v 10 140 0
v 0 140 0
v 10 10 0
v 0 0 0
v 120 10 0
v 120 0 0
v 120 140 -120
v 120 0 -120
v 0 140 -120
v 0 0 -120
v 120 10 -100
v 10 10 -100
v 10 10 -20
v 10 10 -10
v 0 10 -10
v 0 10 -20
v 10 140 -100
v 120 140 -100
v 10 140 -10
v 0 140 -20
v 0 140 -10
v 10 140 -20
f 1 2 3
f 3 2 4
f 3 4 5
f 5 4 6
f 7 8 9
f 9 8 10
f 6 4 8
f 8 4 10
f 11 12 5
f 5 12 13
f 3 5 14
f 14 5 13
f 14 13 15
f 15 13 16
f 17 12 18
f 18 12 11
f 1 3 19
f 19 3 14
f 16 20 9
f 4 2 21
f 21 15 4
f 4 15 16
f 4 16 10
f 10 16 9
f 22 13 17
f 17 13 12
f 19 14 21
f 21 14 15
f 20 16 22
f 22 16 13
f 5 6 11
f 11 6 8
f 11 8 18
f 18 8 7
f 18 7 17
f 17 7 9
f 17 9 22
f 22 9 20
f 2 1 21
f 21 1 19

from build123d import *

# Parameters (mm, degrees)
SKETCH1_W                      = 670
SKETCH1_H                      = 120
BOSS_EXTRUDE1_DEPTH            = 530
SKETCH2_W                      = 100
SKETCH2_H                      = 200
SKETCH2_W_2                    = 650
SKETCH2_H_2                    = 250
CUT_EXTRUDE1_DEPTH             = 100
SKETCH3_R                      = 50
CUT_EXTRUDE2_DEPTH             = 260
F_12_0_12_DIAMETER_HOLE2_D     = 12
F_12_0_12_DIAMETER_HOLE2_DEPTH = 30
F_12_0_12_DIAMETER_HOLE2_TIP   = 3.605163714
SKETCH8_W                      = 650
SKETCH8_H                      = 50
BOSS_EXTRUDE2_DEPTH            = 5
SKETCH9_W                      = 10
SKETCH9_H                      = 250
CUT_EXTRUDE3_DEPTH             = 717
CUT_EXTRUDE4_DEPTH             = 5
SKETCH11_W                     = 10
SKETCH11_H                     = 100
BOSS_EXTRUDE3_DEPTH            = 78
BOSS_EXTRUDE3_2_DEPTH          = 78
BOSS_EXTRUDE3_3_DEPTH          = 78
SKETCH12_W                     = 20
SKETCH12_H                     = 30
CUT_EXTRUDE5_DEPTH             = 80
SKETCH15_W                     = 30
SKETCH15_H                     = 23.536156656
SKETCH15_H_2                   = 28.986603691
CUT_EXTRUDE7_DEPTH             = 35
SHELL1_T                       = -3
SKETCH16_W                     = 14
SKETCH16_H                     = 14
CUT_EXTRUDE8_DEPTH             = 35
SKETCH17_W                     = 5.729882812
SKETCH17_H                     = 17.428393554
SKETCH17_W_2                   = 13.369726562
SKETCH17_H_2                   = 3.342431641
BOSS_EXTRUDE4_DEPTH            = 5
CUT_EXTRUDE10_DEPTH            = 863.670273187
CUT_EXTRUDE10_DEPTH_BACK       = 863.670273187
SKETCH18_W                     = 670
SKETCH18_H                     = 250
CUT_EXTRUDE11_DEPTH            = 734.007503372
CUT_EXTRUDE11_DEPTH_BACK       = 734.007503372
SKETCH19_W                     = 550
SKETCH19_H                     = 280
CUT_EXTRUDE12_DEPTH            = 321.624390838
CUT_EXTRUDE12_DEPTH_BACK       = 321.624390838
SKETCH20_W                     = 120
SKETCH20_H                     = 140


with BuildPart() as part:
    # Sketch1 → Boss-Extrude1 (new body)
    with BuildSketch(Plane(origin=(0, 0, 0), x_dir=(1, 0, 0), z_dir=(0, 1, 0))):
        with Locations((335, 60)):
            Rectangle(SKETCH1_W, SKETCH1_H)
    extrude(amount=BOSS_EXTRUDE1_DEPTH)

    # Sketch2 → Cut-Extrude1 (cut)
    with BuildSketch(Plane.XY):
        with Locations((60, 380)):
            Rectangle(SKETCH2_W, SKETCH2_H)
        with Locations((170, 380)):
            Rectangle(SKETCH2_W, SKETCH2_H)
        with Locations((280, 380)):
            Rectangle(SKETCH2_W, SKETCH2_H)
        with Locations((390, 380)):
            Rectangle(SKETCH2_W, SKETCH2_H)
        with Locations((500, 380)):
            Rectangle(SKETCH2_W, SKETCH2_H)
        with Locations((610, 380)):
            Rectangle(SKETCH2_W, SKETCH2_H)
        with Locations((335, 135)):
            Rectangle(SKETCH2_W_2, SKETCH2_H_2)
    extrude(amount=-CUT_EXTRUDE1_DEPTH, mode=Mode.SUBTRACT)

    # Sketch3 → Cut-Extrude2 (cut)
    with BuildSketch(Plane(origin=(0, 530, 0), x_dir=(1, 0, 0), z_dir=(0, 1, 0))):
        with Locations(Location((60, 60, 0), (0, 0, 270))):
            Circle(SKETCH3_R)
        with Locations(Location((170, 60, 0), (0, 0, 270))):
            Circle(SKETCH3_R)
        with Locations(Location((280, 60, 0), (0, 0, 270))):
            Circle(SKETCH3_R)
        with Locations(Location((390, 60, 0), (0, 0, 270))):
            Circle(SKETCH3_R)
        with Locations(Location((500, 60, 0), (0, 0, 270))):
            Circle(SKETCH3_R)
        with Locations(Location((610, 60, 0), (0, 0, 270))):
            Circle(SKETCH3_R)
    extrude(amount=-CUT_EXTRUDE2_DEPTH, mode=Mode.SUBTRACT)

    # Ø12.0 (12) Diameter Hole2
    with Locations(Plane(origin=(59.704642413, 270, -102.411697903), x_dir=(0, 0, 1), z_dir=(0, 1, 0))):
        with Locations((0, 0), (-0.195888006, 111.8520513), (0.014838595, 221.167624818), (-0.341843303, 331.364008353), (0.657723149, 441.008646429), (1.288998006, 549.811854685)):
            Hole(F_12_0_12_DIAMETER_HOLE2_D / 2, depth=F_12_0_12_DIAMETER_HOLE2_DEPTH)
            with Locations((0, 0, -(F_12_0_12_DIAMETER_HOLE2_DEPTH + F_12_0_12_DIAMETER_HOLE2_TIP / 2))):  # 118° drill point
                Cone(0, F_12_0_12_DIAMETER_HOLE2_D / 2, F_12_0_12_DIAMETER_HOLE2_TIP, mode=Mode.SUBTRACT)

    # Sketch8 → Boss-Extrude2 (add)
    with BuildSketch(Plane.XY):
        with Locations((335, 305)):
            Rectangle(SKETCH8_W, SKETCH8_H)
    extrude(amount=-BOSS_EXTRUDE2_DEPTH)

    # Sketch9 → Cut-Extrude3 (cut)
    with BuildSketch(Plane(origin=(670, 0, 0), x_dir=(0, 0, -1), z_dir=(1, 0, 0))):
        with Locations((15, 135)):
            Rectangle(SKETCH9_W, SKETCH9_H)
    extrude(amount=-CUT_EXTRUDE3_DEPTH, mode=Mode.SUBTRACT)

    # Sketch10 → Cut-Extrude4 (cut)
    with BuildSketch(Plane(origin=(0, 10, 0), x_dir=(1, 0, 0), z_dir=(0, 1, 0))):
        Polygon((365, 61.943560596), (350, 87.924322709), (320, 87.924322709), (305, 61.943560596), (320, 35.962798482), (350, 35.962798482), align=None)
    extrude(amount=-CUT_EXTRUDE4_DEPTH, mode=Mode.SUBTRACT)

    # Sketch12 → Cut-Extrude5 (cut)
    with BuildSketch(Plane.XY.offset(-100)):
        with Locations((85.198613037, 245)):
            Rectangle(SKETCH12_W, SKETCH12_H)
        with Locations((195.198613037, 245)):
            Rectangle(SKETCH12_W, SKETCH12_H)
        with Locations((305.198613037, 245)):
            Rectangle(SKETCH12_W, SKETCH12_H)
        with Locations((415.198613037, 245)):
            Rectangle(SKETCH12_W, SKETCH12_H)
        with Locations((525.198613037, 245)):
            Rectangle(SKETCH12_W, SKETCH12_H)
        with Locations((635.198613037, 245)):
            Rectangle(SKETCH12_W, SKETCH12_H)
    extrude(amount=-CUT_EXTRUDE5_DEPTH, mode=Mode.SUBTRACT)

    # Sketch17 → Boss-Extrude4 (add)
    # profile 1 of 9: a face of its own
    with BuildSketch(Plane.XY):
        with BuildLine():
            Line((527.508830928, 289.835452458), (527.508830928, 307.263846012))
            Line((527.508830928, 307.263846012), (534.861434459, 307.263846012))
            add(Edge.make_bspline(
                [(534.861434459, 307.263846012), (535.181337774, 307.258256848), (535.803061116, 307.24739446), (536.703508491, 307.139069344), (537.544992916, 306.975202489), (538.325061607, 306.737496792), (539.040841948, 306.426020155), (539.698044515, 306.051894954), (540.290333057, 305.605079277), (540.822348212, 305.090232636), (541.284521701, 304.502523111), (541.692171296, 303.852565801), (542.030284458, 303.129762281), (542.309377095, 302.341316546), (542.5243908, 301.484161689), (542.679660381, 300.560045938), (542.773357357, 299.567500804), (542.783368073, 298.883107022), (542.788518428, 298.530997273)],
                knots=[0, 0, 0, 0, 1.135059408, 2.20595691, 3.214417064, 4.174978569, 5.094187092, 5.980001006, 6.853065862, 7.720814779, 8.600404634, 9.50058483, 10.438414914, 11.426825708, 12.465239141, 13.571113463, 14.750376389, 16, 16, 16, 16], degree=3))
            add(Edge.make_bspline(
                [(542.788518428, 298.530997273), (542.781740751, 298.180151665), (542.768592871, 297.499553336), (542.676885992, 296.511518461), (542.516733301, 295.591080531), (542.296748778, 294.736450427), (542.003051046, 293.953120444), (541.654236167, 293.233205539), (541.233025793, 292.585291498), (540.753136904, 292.000029304), (540.204772188, 291.484681411), (539.587651059, 291.044279297), (538.910779309, 290.668464036), (538.169670382, 290.361903209), (537.364073889, 290.124869172), (536.495133477, 289.954199984), (535.562644449, 289.853487388), (534.920131033, 289.841584621), (534.58911581, 289.835452458)],
                knots=[0, 0, 0, 0, 1.228418252, 2.382983832, 3.470276728, 4.496757894, 5.468023682, 6.394867725, 7.292157164, 8.167372942, 9.039072913, 9.918728341, 10.815246345, 11.744296628, 12.720973084, 13.750736166, 14.841206188, 16, 16, 16, 16], degree=3))
            Line((534.58911581, 289.835452458), (527.508830928, 289.835452458))
        make_face()
        with BuildLine():
            Line((533.238713741, 291.745413395), (534.048208904, 291.745413395))
            add(Edge.make_bspline(
                [(534.048208904, 291.745413395), (534.172894012, 291.749291978), (534.413033311, 291.756761998), (534.758676231, 291.825976613), (535.075745017, 291.938271137), (535.365749176, 292.094802589), (535.623404602, 292.300450923), (535.848862806, 292.551404902), (536.04776914, 292.844737637), (536.217685755, 293.190205032), (536.364284647, 293.596533622), (536.481764702, 294.076367921), (536.592118304, 294.630928744), (536.673672739, 295.265507643), (536.740044562, 295.978448886), (536.788346679, 296.768428292), (536.812018936, 297.636801208), (536.817188964, 298.241258393), (536.819890499, 298.55711002)],
                knots=[0, 0, 0, 0, 0.728710832, 1.403472396, 2.052289494, 2.690292559, 3.321919393, 3.970736491, 4.656696891, 5.388631723, 6.217040872, 7.17856157, 8.275589967, 9.523440737, 10.918935818, 12.463926104, 14.152268318, 16, 16, 16, 16], degree=3))
            add(Edge.make_bspline(
                [(536.819890499, 298.55711002), (536.8171426, 298.871715251), (536.811863063, 299.476166083), (536.7886758, 300.343334385), (536.739579947, 301.133216935), (536.674703848, 301.843934916), (536.589660404, 302.476324031), (536.488366458, 303.031681737), (536.362441588, 303.507627045), (536.222158727, 303.914921549), (536.050140993, 304.256514038), (535.858357073, 304.554097881), (535.62547107, 304.79746827), (535.36991257, 305.004888479), (535.079348843, 305.160875844), (534.761320266, 305.273944358), (534.414185903, 305.34216807), (534.172870641, 305.349893944), (534.048208904, 305.353885075)],
                knots=[0, 0, 0, 0, 1.842836665, 3.540640921, 5.080358154, 6.47765669, 7.719902824, 8.816971715, 9.781579111, 10.601733135, 11.334613876, 12.017393917, 12.666641099, 13.29908421, 13.937911793, 14.587567384, 15.270347425, 16, 16, 16, 16], degree=3))
            Line((534.048208904, 305.353885075), (533.238713741, 305.353885075))
            Line((533.238713741, 305.353885075), (533.238713741, 291.745413395))
        make_face(mode=Mode.SUBTRACT)
    # profile 2 of 9: a face of its own
    with BuildSketch(Plane.XY):
        with Locations((547.563420772, 298.549649235)):
            Rectangle(SKETCH17_W, SKETCH17_H)
    # profile 3 of 9: a face of its own
    with BuildSketch(Plane.XY):
        Polygon((564.514324092, 307.263846012), (564.514324092, 305.115139958), (558.545696163, 305.115139958), (558.545696163, 299.862747379), (563.559343624, 299.862747379), (563.559343624, 297.714041325), (558.545696163, 297.714041325), (558.545696163, 289.835452458), (552.81581335, 289.835452458), (552.81581335, 307.263846012), align=None)
    # profile 4 of 9: a face of its own
    with BuildSketch(Plane.XY):
        Polygon((577.645305538, 307.263846012), (577.645305538, 305.115139958), (571.676677608, 305.115139958), (571.676677608, 299.862747379), (576.690325069, 299.862747379), (576.690325069, 297.714041325), (571.676677608, 297.714041325), (571.676677608, 289.835452458), (565.946794795, 289.835452458), (565.946794795, 307.263846012), align=None)
    # profile 5 of 9: a face of its own
    with BuildSketch(Plane.XY):
        with Locations((584.330168819, 287.448001286)):
            Rectangle(SKETCH17_W_2, SKETCH17_H_2)
    # profile 6 of 9: a face of its own
    with BuildSketch(Plane.XY):
        with BuildLine():
            Line((605.578484249, 307.263846012), (605.578484249, 295.602639195))
            add(Edge.make_bspline(
                [(605.578484249, 295.602639195), (605.574209777, 295.35989389), (605.565919345, 294.889083964), (605.480877158, 294.20653885), (605.349958188, 293.569747554), (605.15926554, 292.978838165), (604.911867049, 292.436847071), (604.616163877, 291.936663973), (604.260702644, 291.487723021), (603.847299908, 291.08966617), (603.386881991, 290.731670113), (602.867295001, 290.425440037), (602.293741958, 290.168488385), (601.66690529, 289.960990771), (600.988052682, 289.797299786), (600.254912883, 289.679078851), (599.467035781, 289.60781007), (598.923618241, 289.60048219), (598.643684673, 289.59670734)],
                knots=[0, 0, 0, 0, 1.108173197, 2.149326602, 3.136215123, 4.073726706, 4.978516626, 5.852185058, 6.72141202, 7.584905625, 8.467554395, 9.379216169, 10.332422268, 11.332766067, 12.390653242, 13.518530507, 14.721707419, 16, 16, 16, 16], degree=3))
            add(Edge.make_bspline(
                [(598.643684673, 289.59670734), (598.373688491, 289.600411437), (597.851346557, 289.607577482), (597.093280473, 289.679448684), (596.387523889, 289.797736542), (595.733050135, 289.960122315), (595.130189942, 290.169220301), (594.579048171, 290.42623041), (594.078350789, 290.732835498), (593.633858028, 291.090104794), (593.234289459, 291.486851767), (592.899913678, 291.940746827), (592.609043638, 292.435866034), (592.375223767, 292.980322997), (592.191754821, 293.570441519), (592.063541006, 294.20666921), (591.983676196, 294.889343196), (591.974661767, 295.359932437), (591.970012569, 295.602639195)],
                knots=[0, 0, 0, 0, 1.258901956, 2.435505865, 3.547148904, 4.59359074, 5.576649289, 6.5183682, 7.424469602, 8.307507093, 9.172751023, 10.042627298, 10.928839176, 11.845659241, 12.799442865, 13.80597989, 14.868432463, 16, 16, 16, 16], degree=3))
            Line((591.970012569, 295.602639195), (591.970012569, 307.263846012))
            Line((591.970012569, 307.263846012), (597.699895381, 307.263846012))
            Line((597.699895381, 307.263846012), (597.699895381, 295.457153889))
            add(Edge.make_bspline(
                [(597.699895381, 295.457153889), (597.700816195, 295.287996189), (597.702584578, 294.963135903), (597.729908723, 294.499051493), (597.768241004, 294.079064133), (597.828226169, 293.705517832), (597.90066041, 293.377063412), (597.989882091, 293.09281535), (598.094998068, 292.852496478), (598.225239063, 292.654232043), (598.380826623, 292.495135011), (598.55368342, 292.353231761), (598.757556996, 292.238543846), (598.987648905, 292.146224908), (599.243380948, 292.070549638), (599.526120553, 292.020376099), (599.83553351, 291.990763905), (600.049971942, 291.986424568), (600.161954402, 291.984158512)],
                knots=[0, 0, 0, 0, 1.622370975, 3.115695595, 4.458049099, 5.666011203, 6.742434742, 7.681714947, 8.519814998, 9.250928664, 9.942747364, 10.646898194, 11.389596108, 12.175933929, 13.021386247, 13.943159715, 14.925891993, 16, 16, 16, 16], degree=3))
            add(Edge.make_bspline(
                [(600.161954402, 291.984158512), (600.283927219, 291.987190593), (600.521124756, 291.993087005), (600.86597014, 292.03390861), (601.187714881, 292.103380086), (601.484890424, 292.205377303), (601.758665297, 292.332852529), (602.012761516, 292.484567923), (602.236391413, 292.674631152), (602.439076761, 292.888441291), (602.620738276, 293.128529789), (602.771757722, 293.399928575), (602.905501548, 293.697121508), (603.005823683, 294.025060118), (603.089837826, 294.379999499), (603.146989706, 294.763086929), (603.186210275, 295.174074524), (603.189394751, 295.457053988), (603.191033077, 295.602639195)],
                knots=[0, 0, 0, 0, 1.083870311, 2.107775948, 3.08105344, 4.003637981, 4.893545291, 5.761570557, 6.624657808, 7.49233129, 8.376387281, 9.291996285, 10.246843261, 11.267344133, 12.334180325, 13.486053461, 14.706643157, 16, 16, 16, 16], degree=3))
            Line((603.191033077, 295.602639195), (603.191033077, 307.263846012))
            Line((603.191033077, 307.263846012), (605.578484249, 307.263846012))
        make_face()
    # profile 7 of 9: a face of its own
    with BuildSketch(Plane.XY):
        with BuildLine():
            Line((619.731593227, 302.015183827), (616.739818477, 301.526502415))
            add(Edge.make_bspline(
                [(616.739818477, 301.526502415), (616.748849224, 301.670726223), (616.765660669, 301.939210177), (616.78429066, 302.312269209), (616.796668381, 302.625642376), (616.798628236, 302.814722915), (616.799504756, 302.899286839)],
                knots=[0, 0, 0, 0, 1.261802504, 2.348944521, 3.261585937, 4, 4, 4, 4], degree=3))
            add(Edge.make_bspline(
                [(616.799504756, 302.899286839), (616.798306068, 303.007660677), (616.795968139, 303.219033721), (616.750451916, 303.523894877), (616.694806916, 303.811547356), (616.604352699, 304.076787391), (616.488181329, 304.320314265), (616.348943917, 304.543955606), (616.184187178, 304.745078709), (615.995833421, 304.928129987), (615.778009957, 305.083200131), (615.536269472, 305.218702836), (615.269765326, 305.333844758), (614.978065514, 305.431346685), (614.660683072, 305.504624438), (614.319025281, 305.556776695), (613.952471696, 305.585673441), (613.699597795, 305.590260771), (613.568984889, 305.592630192)],
                knots=[0, 0, 0, 0, 1.079280541, 2.105035848, 3.067950317, 3.99715044, 4.889989748, 5.753421302, 6.617030865, 7.476358039, 8.364190572, 9.274590025, 10.235106994, 11.254473582, 12.337095886, 13.478601727, 14.697662529, 16, 16, 16, 16], degree=3))
            add(Edge.make_bspline(
                [(613.568984889, 305.592630192), (613.391954632, 305.58912286), (613.059112606, 305.582528579), (612.595688488, 305.495339748), (612.198743126, 305.361419257), (611.87165349, 305.163811893), (611.613188167, 304.909795747), (611.433841092, 304.593316589), (611.323009072, 304.224665915), (611.313400221, 303.959558324), (611.308367061, 303.820693775)],
                knots=[0, 0, 0, 0, 1.294917039, 2.43462794, 3.440028966, 4.347597256, 5.210608309, 6.06356377, 6.985685997, 8, 8, 8, 8], degree=3))
            add(Edge.make_bspline(
                [(611.308367061, 303.820693775), (611.317562032, 303.705133219), (611.336106628, 303.472068433), (611.47315858, 303.132808312), (611.695999602, 302.811560885), (612.009295906, 302.510664216), (612.404107796, 302.221967273), (612.884407504, 301.948533431), (613.450813789, 301.688189695), (613.862519081, 301.536023727), (614.080048656, 301.455624958)],
                knots=[0, 0, 0, 0, 0.716839541, 1.445735977, 2.240793036, 3.131329288, 4.131129903, 5.273471266, 6.559404876, 8, 8, 8, 8], degree=3))
            add(Edge.make_bspline(
                [(614.080048656, 301.455624958), (614.335934702, 301.364918412), (614.834564244, 301.188164095), (615.547657928, 300.88707802), (616.213068388, 300.5749594), (616.829579094, 300.246613346), (617.397833174, 299.90520698), (617.914851624, 299.544556457), (618.386199073, 299.173962102), (618.807001026, 298.783874588), (619.177995113, 298.378100064), (619.4958685, 297.952745357), (619.771807525, 297.51723103), (619.991113975, 297.061458502), (620.169645242, 296.594624218), (620.292698657, 296.11024444), (620.364288243, 295.609761088), (620.37516617, 295.270864226), (620.380681514, 295.099036213)],
                knots=[0, 0, 0, 0, 1.359488612, 2.649152603, 3.874964776, 5.039588756, 6.146130126, 7.193090393, 8.194917302, 9.146793662, 10.063845301, 10.944476293, 11.803344532, 12.641736646, 13.473440096, 14.302714936, 15.139439897, 16, 16, 16, 16], degree=3))
            add(Edge.make_bspline(
                [(620.380681514, 295.099036213), (620.374476075, 294.902306495), (620.362285176, 294.515820995), (620.280160209, 293.948630617), (620.138011896, 293.409496554), (619.938489338, 292.895972278), (619.681049879, 292.411946655), (619.366518754, 291.954381076), (618.996510229, 291.525099427), (618.5710008, 291.128381035), (618.102222518, 290.765302239), (617.587803957, 290.450854345), (617.034458515, 290.187092261), (616.444107988, 289.968993032), (615.81453624, 289.801373099), (615.145337453, 289.685291013), (614.438790193, 289.606619894), (613.954683001, 289.600062276), (613.70700941, 289.59670734)],
                knots=[0, 0, 0, 0, 0.972121714, 1.909782367, 2.824924061, 3.721832975, 4.62620438, 5.527836938, 6.46026819, 7.421000932, 8.398101015, 9.385579713, 10.394244048, 11.422703992, 12.491421888, 13.608778581, 14.776629625, 16, 16, 16, 16], degree=3))
            add(Edge.make_bspline(
                [(613.70700941, 289.59670734), (613.445745367, 289.599650312), (612.939893069, 289.605348413), (612.207608113, 289.66709241), (611.525297432, 289.760984454), (610.893395078, 289.899706116), (610.309273131, 290.072394336), (609.776099392, 290.288320955), (609.295310255, 290.547303481), (608.863217672, 290.843007892), (608.478306623, 291.175775461), (608.148120946, 291.551766865), (607.86942369, 291.967163224), (607.639947144, 292.421521488), (607.466477665, 292.917583541), (607.339164663, 293.449829748), (607.264537999, 294.021332449), (607.254747521, 294.414908557), (607.249700069, 294.617815586)],
                knots=[0, 0, 0, 0, 1.342201143, 2.598733168, 3.773451092, 4.878874364, 5.91991243, 6.900006476, 7.829142054, 8.72062616, 9.585588575, 10.436728592, 11.283829734, 12.149664931, 13.044964919, 13.977937424, 14.957531465, 16, 16, 16, 16], degree=3))
            add(Edge.make_bspline(
                [(607.249700069, 294.617815586), (607.250803815, 294.692425759), (607.253213998, 294.855347393), (607.260452266, 295.122772538), (607.275636683, 295.433682216), (607.29037174, 295.656130545), (607.298195171, 295.774237248)],
                knots=[0, 0, 0, 0, 0.773500207, 1.689044709, 2.77302154, 4, 4, 4, 4], degree=3))
            Line((607.298195171, 295.774237248), (610.36457777, 296.337526509))
            add(Edge.make_bspline(
                [(610.36457777, 296.337526509), (610.326952988, 296.136337493), (610.255606535, 295.754830366), (610.178678473, 295.21219969), (610.124206629, 294.733311493), (610.11767002, 294.435147371), (610.114641475, 294.297001835)],
                knots=[0, 0, 0, 0, 1.192988372, 2.262218769, 3.194850416, 4, 4, 4, 4], degree=3))
            add(Edge.make_bspline(
                [(610.114641475, 294.297001835), (610.116191817, 294.183708768), (610.119182568, 293.965156219), (610.159053378, 293.648552813), (610.215988606, 293.352999663), (610.302906772, 293.079707227), (610.411206928, 292.826307836), (610.544682453, 292.59538211), (610.704385489, 292.386485019), (610.887496571, 292.200099922), (611.094689168, 292.033628705), (611.327456494, 291.892756696), (611.58347653, 291.771733922), (611.864681562, 291.677479524), (612.167961721, 291.596080628), (612.497219749, 291.548235723), (612.849461228, 291.512043782), (613.092629543, 291.508500084), (613.218327999, 291.506668278)],
                knots=[0, 0, 0, 0, 1.135776692, 2.191015738, 3.19649269, 4.151244236, 5.061952528, 5.956281389, 6.819534407, 7.692823504, 8.571441916, 9.478554956, 10.416037156, 11.406231466, 12.450054172, 13.561596327, 14.739541482, 16, 16, 16, 16], degree=3))
            add(Edge.make_bspline(
                [(613.218327999, 291.506668278), (613.423996012, 291.510791273), (613.810619321, 291.518541853), (614.349272542, 291.616708407), (614.810575885, 291.768742445), (615.189785268, 291.991387532), (615.490778961, 292.278756613), (615.698005174, 292.637320004), (615.824813318, 293.05638326), (615.837728413, 293.355975238), (615.844524288, 293.513619419)],
                knots=[0, 0, 0, 0, 1.308765556, 2.460272085, 3.475015317, 4.388076298, 5.239673503, 6.095681635, 6.997954785, 8, 8, 8, 8], degree=3))
            add(Edge.make_bspline(
                [(615.844524288, 293.513619419), (615.833808824, 293.638242951), (615.811807312, 293.894126055), (615.644884004, 294.264515838), (615.382382362, 294.620631473), (615.016807277, 294.962984909), (614.551376589, 295.293471235), (613.986957743, 295.616730224), (613.322148235, 295.933112033), (612.83677959, 296.119639164), (612.580430889, 296.21815395)],
                knots=[0, 0, 0, 0, 0.667930748, 1.371427933, 2.146459016, 3.034714139, 4.04893387, 5.207327294, 6.525042705, 8, 8, 8, 8], degree=3))
            add(Edge.make_bspline(
                [(612.580430889, 296.21815395), (612.374354345, 296.29679374), (611.970646869, 296.450850434), (611.394079385, 296.713586304), (610.853066711, 296.987016804), (610.357486361, 297.288235735), (609.896382561, 297.599610528), (609.477036946, 297.932256792), (609.09841673, 298.284556341), (608.758710772, 298.653375077), (608.457302107, 299.038989264), (608.199448649, 299.444659231), (607.977533299, 299.866789834), (607.798609588, 300.308107488), (607.65975715, 300.767821241), (607.559616231, 301.244439392), (607.497905054, 301.739995674), (607.491630423, 302.075933546), (607.488445186, 302.246468159)],
                knots=[0, 0, 0, 0, 1.249558333, 2.447906163, 3.58867143, 4.682264114, 5.731748367, 6.739728761, 7.711906036, 8.659384707, 9.578321416, 10.481344598, 11.379544271, 12.277135726, 13.175418307, 14.097160112, 15.034047388, 16, 16, 16, 16], degree=3))
            add(Edge.make_bspline(
                [(607.488445186, 302.246468159), (607.49282555, 302.439538736), (607.501402184, 302.817565692), (607.587451154, 303.36980586), (607.719291893, 303.894921371), (607.910558542, 304.389343064), (608.156192894, 304.852853762), (608.453187669, 305.288766511), (608.804241719, 305.697593471), (609.213503754, 306.066686531), (609.657214714, 306.407618241), (610.14376173, 306.697651931), (610.658716537, 306.950861947), (611.210636666, 307.148827868), (611.791820619, 307.313252612), (612.408080529, 307.421140415), (613.056315391, 307.490701612), (613.499160755, 307.498567824), (613.725661373, 307.502591129)],
                knots=[0, 0, 0, 0, 1.01033566, 1.978209831, 2.919499157, 3.840961976, 4.746855014, 5.660740114, 6.597989116, 7.56120833, 8.541877795, 9.523498025, 10.522416858, 11.542172371, 12.589598349, 13.681636521, 14.814234488, 16, 16, 16, 16], degree=3))
            add(Edge.make_bspline(
                [(613.725661373, 307.502591129), (613.968269855, 307.498219033), (614.438190994, 307.489750488), (615.120391152, 307.426787419), (615.755073228, 307.319142339), (616.345153155, 307.171557286), (616.887304575, 306.977590666), (617.384933999, 306.742393454), (617.834452216, 306.46201507), (618.236961315, 306.139451502), (618.593086714, 305.773322851), (618.897467704, 305.361641069), (619.158701245, 304.909408454), (619.366684143, 304.412232174), (619.529870326, 303.873247147), (619.649133834, 303.29158184), (619.720420497, 302.667301443), (619.72779778, 302.236712324), (619.731593227, 302.015183827)],
                knots=[0, 0, 0, 0, 1.248314423, 2.417925914, 3.521398822, 4.558068205, 5.543720209, 6.479599284, 7.385061127, 8.263440163, 9.127722873, 10.00561236, 10.891325273, 11.808802823, 12.772251995, 13.784947978, 14.860405143, 16, 16, 16, 16], degree=3))
        make_face()
    # profile 8 of 9: a face of its own
    with BuildSketch(Plane.XY):
        Polygon((633.989153194, 307.263846012), (633.989153194, 305.115139958), (628.020525264, 305.115139958), (628.020525264, 300.340237614), (633.034172725, 300.340237614), (633.034172725, 298.191531559), (628.020525264, 298.191531559), (628.020525264, 291.984158512), (634.944133663, 291.984158512), (634.944133663, 289.835452458), (622.290642452, 289.835452458), (622.290642452, 307.263846012), align=None)
    # profile 9 of 9: a face of its own
    with BuildSketch(Plane.XY):
        with BuildLine():
            Line((636.376604366, 289.835452458), (636.376604366, 307.263846012))
            Line((636.376604366, 307.263846012), (643.990335369, 307.263846012))
            add(Edge.make_bspline(
                [(643.990335369, 307.263846012), (644.237946498, 307.261150834), (644.721600887, 307.25588639), (645.426490561, 307.189203683), (646.094808274, 307.090496236), (646.724915796, 306.949857504), (647.317873659, 306.767252686), (647.871119087, 306.542146), (648.390701058, 306.282329135), (648.864494846, 305.976472528), (649.295093616, 305.642889252), (649.669668547, 305.279483604), (649.990389523, 304.894749072), (650.250664962, 304.483256345), (650.454275633, 304.048690948), (650.59581384, 303.587791605), (650.684089268, 303.104102537), (650.695510601, 302.772834174), (650.701311397, 302.604585835)],
                knots=[0, 0, 0, 0, 1.303269877, 2.545653735, 3.724355284, 4.8584284, 5.941462088, 6.987020715, 8.000098032, 8.995332524, 9.951400474, 10.863507538, 11.737823931, 12.582415999, 13.420128714, 14.25671499, 15.114600608, 16, 16, 16, 16], degree=3))
            add(Edge.make_bspline(
                [(650.701311397, 302.604585835), (650.698282873, 302.472674957), (650.692382063, 302.215658276), (650.651041486, 301.838684287), (650.580643818, 301.480313933), (650.481036683, 301.139915259), (650.347814833, 300.820175594), (650.191279492, 300.517863507), (650.009772227, 300.230553342), (649.788675198, 299.970497982), (649.548268341, 299.722842359), (649.274558803, 299.497116911), (648.974487035, 299.288655528), (648.642526299, 299.104010513), (648.287619671, 298.928055749), (647.899038177, 298.784921972), (647.486819978, 298.644749395), (647.19793098, 298.577036306), (647.049257183, 298.54218845)],
                knots=[0, 0, 0, 0, 1.057156483, 2.059775939, 3.035078039, 3.981068617, 4.897189472, 5.80650904, 6.70770952, 7.613691521, 8.536886357, 9.470937334, 10.45233069, 11.461024139, 12.51295332, 13.623444893, 14.776929983, 16, 16, 16, 16], degree=3))
            add(Edge.make_bspline(
                [(647.049257183, 298.54218845), (647.19164695, 298.499279419), (647.467865022, 298.416041346), (647.856360945, 298.265600017), (648.211652989, 298.111536308), (648.524185739, 297.936781388), (648.807636894, 297.762122504), (649.047122259, 297.564301324), (649.255235567, 297.361673563), (649.425188343, 297.135464734), (649.570253643, 296.882344437), (649.694827156, 296.586596707), (649.815179167, 296.247423665), (649.917667348, 295.859098311), (650.004750555, 295.423699276), (650.088222437, 294.944027189), (650.153853601, 294.416024546), (650.187587341, 294.048412906), (650.2051692, 293.856815525)],
                knots=[0, 0, 0, 0, 1.149282524, 2.229462177, 3.219229774, 4.139917433, 4.995948464, 5.788695735, 6.536448429, 7.236319808, 7.968460079, 8.78645307, 9.713791991, 10.749194692, 11.887975363, 13.146018663, 14.512518948, 16, 16, 16, 16], degree=3))
            add(Edge.make_bspline(
                [(650.2051692, 293.856815525), (650.225980287, 293.627849833), (650.265975604, 293.187817268), (650.348933081, 292.554613589), (650.44386163, 291.974357025), (650.555874504, 291.44528724), (650.681301216, 290.967898855), (650.821280597, 290.540469593), (650.979920039, 290.165788217), (651.10484481, 289.941461656), (651.163880062, 289.835452458)],
                knots=[0, 0, 0, 0, 1.324580516, 2.545615266, 3.678710841, 4.711533017, 5.660403917, 6.521349952, 7.301239649, 8, 8, 8, 8], degree=3))
            Line((651.163880062, 289.835452458), (645.213904094, 289.835452458))
            add(Edge.make_bspline(
                [(645.213904094, 289.835452458), (645.12229736, 290.069847279), (644.935171241, 290.548648246), (644.7595281, 291.319414791), (644.64846922, 292.142514735), (644.635117598, 292.70994511), (644.628232479, 293.002555653)],
                knots=[0, 0, 0, 0, 0.930410518, 1.900560147, 2.917368081, 4, 4, 4, 4], degree=3))
            Line((644.628232479, 293.002555653), (644.605850124, 294.002300831))
            Line((644.605850124, 294.002300831), (644.579737377, 295.266903874))
            add(Edge.make_bspline(
                [(644.579737377, 295.266903874), (644.573694669, 295.477395004), (644.562357007, 295.872330118), (644.469348432, 296.426164013), (644.30178735, 296.894645884), (644.073222546, 297.287223005), (643.766741442, 297.590613479), (643.39104803, 297.804152917), (642.950456912, 297.93396284), (642.634664848, 297.946292392), (642.468335247, 297.952786442)],
                knots=[0, 0, 0, 0, 1.295300309, 2.430314163, 3.439929415, 4.342995669, 5.203512789, 6.060756153, 6.978588463, 8, 8, 8, 8], degree=3))
            Line((642.468335247, 297.952786442), (642.106487178, 297.952786442))
            Line((642.106487178, 297.952786442), (642.106487178, 289.835452458))
            Line((642.106487178, 289.835452458), (636.376604366, 289.835452458))
        make_face()
        with BuildLine():
            Line((642.106487178, 299.862747379), (642.617550945, 299.862747379))
            add(Edge.make_bspline(
                [(642.617550945, 299.862747379), (642.722054451, 299.865172716), (642.925280724, 299.869889229), (643.220054897, 299.898289891), (643.494111408, 299.951809873), (643.749840966, 300.021017819), (643.984372137, 300.114851792), (644.200147241, 300.225818296), (644.391160406, 300.362685327), (644.565327067, 300.516342321), (644.718148635, 300.691986294), (644.850351299, 300.889034217), (644.961199162, 301.106225057), (645.056078491, 301.342818683), (645.125883912, 301.600830857), (645.173262731, 301.879472914), (645.203404658, 302.177423605), (645.207875435, 302.383174491), (645.210173702, 302.488943669)],
                knots=[0, 0, 0, 0, 1.184986479, 2.304423995, 3.352332712, 4.347714965, 5.303263624, 6.211353909, 7.091434645, 7.960150225, 8.839440182, 9.723126897, 10.64371617, 11.599264829, 12.608232147, 13.667459739, 14.800924404, 16, 16, 16, 16], degree=3))
            add(Edge.make_bspline(
                [(645.210173702, 302.488943669), (645.207875435, 302.594712847), (645.203404658, 302.800463732), (645.173262731, 303.098414423), (645.125883912, 303.37705648), (645.056078491, 303.635068654), (644.961199162, 303.87166228), (644.850351299, 304.08885312), (644.718148635, 304.285901043), (644.565327067, 304.461545017), (644.391160406, 304.61520201), (644.200147241, 304.752069041), (643.984372137, 304.863035546), (643.749840966, 304.956869518), (643.494111408, 305.026077464), (643.220054897, 305.079597446), (642.925280724, 305.107998108), (642.722054451, 305.112714621), (642.617550945, 305.115139958)],
                knots=[0, 0, 0, 0, 1.199075596, 2.332540261, 3.391767853, 4.400735171, 5.35628383, 6.276873103, 7.160559818, 8.039849775, 8.908565355, 9.788646091, 10.696736376, 11.652285035, 12.647667288, 13.695576005, 14.815013521, 16, 16, 16, 16], degree=3))
            Line((642.617550945, 305.115139958), (642.106487178, 305.115139958))
            Line((642.106487178, 305.115139958), (642.106487178, 299.862747379))
        make_face(mode=Mode.SUBTRACT)
    extrude(amount=BOSS_EXTRUDE4_DEPTH)

    # Sketch18 → Cut-Extrude10 (cut, two sides: drawn at the far end of the back side and taken through both)
    with BuildSketch(Plane.XY.offset(-CUT_EXTRUDE10_DEPTH_BACK)):
        with Locations((335, 405)):
            Rectangle(SKETCH18_W, SKETCH18_H)
    extrude(amount=CUT_EXTRUDE10_DEPTH + CUT_EXTRUDE10_DEPTH_BACK, mode=Mode.SUBTRACT)

    # Sketch19 → Cut-Extrude11 (cut, two sides: drawn at the far end of the back side and taken through both)
    with BuildSketch(Plane.XY.offset(-100).offset(-CUT_EXTRUDE11_DEPTH_BACK)):
        with Locations((395, 140)):
            Rectangle(SKETCH19_W, SKETCH19_H)
    extrude(amount=CUT_EXTRUDE11_DEPTH + CUT_EXTRUDE11_DEPTH_BACK, mode=Mode.SUBTRACT)

    # Sketch20 → Cut-Extrude12 (cut, two sides: drawn at the far end of the back side and taken through both)
    with BuildSketch(Plane.XY.offset(-100).offset(-CUT_EXTRUDE12_DEPTH_BACK)):
        with Locations((60, 210)):
            Rectangle(SKETCH20_W, SKETCH20_H)
    extrude(amount=CUT_EXTRUDE12_DEPTH + CUT_EXTRUDE12_DEPTH_BACK, mode=Mode.SUBTRACT)


with BuildPart() as body_2:
    # Sketch11 → Boss-Extrude3 (new body)
    with BuildSketch(Plane.XY.offset(-100)):
        with Locations((255, 60)):
            Rectangle(SKETCH11_W, SKETCH11_H)
    extrude(amount=BOSS_EXTRUDE3_DEPTH)


with BuildPart() as body_3:
    # Sketch11 → Boss-Extrude3 2 (new body)
    with BuildSketch(Plane.XY.offset(-100)):
        with Locations((415, 60)):
            Rectangle(SKETCH11_W, SKETCH11_H)
    extrude(amount=BOSS_EXTRUDE3_2_DEPTH)


with BuildPart() as body_4:
    # Sketch11 → Boss-Extrude3 3 (new body)
    with BuildSketch(Plane.XY.offset(-100)):
        Polygon((25, 198.45686471), (325, 145.558770497), (325, 122.01775856), (345, 122.01775856), (345, 145.558770497), (645, 198.45686471), align=None)
    extrude(amount=BOSS_EXTRUDE3_3_DEPTH)

    # Sketch15 → Cut-Extrude7 (cut)
    with BuildSketch(Plane(origin=(345, 0, 0), x_dir=(0, 0, -1), z_dir=(1, 0, 0))):
        with Locations((35, 133.231921672)):
            Rectangle(SKETCH15_W, SKETCH15_H)
        with Locations((85, 130.506698154)):
            Rectangle(SKETCH15_W, SKETCH15_H_2)
    extrude(amount=-CUT_EXTRUDE7_DEPTH, mode=Mode.SUBTRACT)

    # Shell1
    shell1_openings = [body_4.faces().sort_by_distance(p)[0] for p in [
        (335, 198.45686471, -61),
    ]]
    offset(amount=SHELL1_T, openings=shell1_openings, kind=Kind.INTERSECTION)

    # Sketch16 → Cut-Extrude8 (cut)
    with BuildSketch(Plane.XZ.offset(-122.01775856)):
        with Locations((335, -60)):
            Rectangle(SKETCH16_W, SKETCH16_H)
    extrude(amount=-CUT_EXTRUDE8_DEPTH, mode=Mode.SUBTRACT)


solid = part.part
